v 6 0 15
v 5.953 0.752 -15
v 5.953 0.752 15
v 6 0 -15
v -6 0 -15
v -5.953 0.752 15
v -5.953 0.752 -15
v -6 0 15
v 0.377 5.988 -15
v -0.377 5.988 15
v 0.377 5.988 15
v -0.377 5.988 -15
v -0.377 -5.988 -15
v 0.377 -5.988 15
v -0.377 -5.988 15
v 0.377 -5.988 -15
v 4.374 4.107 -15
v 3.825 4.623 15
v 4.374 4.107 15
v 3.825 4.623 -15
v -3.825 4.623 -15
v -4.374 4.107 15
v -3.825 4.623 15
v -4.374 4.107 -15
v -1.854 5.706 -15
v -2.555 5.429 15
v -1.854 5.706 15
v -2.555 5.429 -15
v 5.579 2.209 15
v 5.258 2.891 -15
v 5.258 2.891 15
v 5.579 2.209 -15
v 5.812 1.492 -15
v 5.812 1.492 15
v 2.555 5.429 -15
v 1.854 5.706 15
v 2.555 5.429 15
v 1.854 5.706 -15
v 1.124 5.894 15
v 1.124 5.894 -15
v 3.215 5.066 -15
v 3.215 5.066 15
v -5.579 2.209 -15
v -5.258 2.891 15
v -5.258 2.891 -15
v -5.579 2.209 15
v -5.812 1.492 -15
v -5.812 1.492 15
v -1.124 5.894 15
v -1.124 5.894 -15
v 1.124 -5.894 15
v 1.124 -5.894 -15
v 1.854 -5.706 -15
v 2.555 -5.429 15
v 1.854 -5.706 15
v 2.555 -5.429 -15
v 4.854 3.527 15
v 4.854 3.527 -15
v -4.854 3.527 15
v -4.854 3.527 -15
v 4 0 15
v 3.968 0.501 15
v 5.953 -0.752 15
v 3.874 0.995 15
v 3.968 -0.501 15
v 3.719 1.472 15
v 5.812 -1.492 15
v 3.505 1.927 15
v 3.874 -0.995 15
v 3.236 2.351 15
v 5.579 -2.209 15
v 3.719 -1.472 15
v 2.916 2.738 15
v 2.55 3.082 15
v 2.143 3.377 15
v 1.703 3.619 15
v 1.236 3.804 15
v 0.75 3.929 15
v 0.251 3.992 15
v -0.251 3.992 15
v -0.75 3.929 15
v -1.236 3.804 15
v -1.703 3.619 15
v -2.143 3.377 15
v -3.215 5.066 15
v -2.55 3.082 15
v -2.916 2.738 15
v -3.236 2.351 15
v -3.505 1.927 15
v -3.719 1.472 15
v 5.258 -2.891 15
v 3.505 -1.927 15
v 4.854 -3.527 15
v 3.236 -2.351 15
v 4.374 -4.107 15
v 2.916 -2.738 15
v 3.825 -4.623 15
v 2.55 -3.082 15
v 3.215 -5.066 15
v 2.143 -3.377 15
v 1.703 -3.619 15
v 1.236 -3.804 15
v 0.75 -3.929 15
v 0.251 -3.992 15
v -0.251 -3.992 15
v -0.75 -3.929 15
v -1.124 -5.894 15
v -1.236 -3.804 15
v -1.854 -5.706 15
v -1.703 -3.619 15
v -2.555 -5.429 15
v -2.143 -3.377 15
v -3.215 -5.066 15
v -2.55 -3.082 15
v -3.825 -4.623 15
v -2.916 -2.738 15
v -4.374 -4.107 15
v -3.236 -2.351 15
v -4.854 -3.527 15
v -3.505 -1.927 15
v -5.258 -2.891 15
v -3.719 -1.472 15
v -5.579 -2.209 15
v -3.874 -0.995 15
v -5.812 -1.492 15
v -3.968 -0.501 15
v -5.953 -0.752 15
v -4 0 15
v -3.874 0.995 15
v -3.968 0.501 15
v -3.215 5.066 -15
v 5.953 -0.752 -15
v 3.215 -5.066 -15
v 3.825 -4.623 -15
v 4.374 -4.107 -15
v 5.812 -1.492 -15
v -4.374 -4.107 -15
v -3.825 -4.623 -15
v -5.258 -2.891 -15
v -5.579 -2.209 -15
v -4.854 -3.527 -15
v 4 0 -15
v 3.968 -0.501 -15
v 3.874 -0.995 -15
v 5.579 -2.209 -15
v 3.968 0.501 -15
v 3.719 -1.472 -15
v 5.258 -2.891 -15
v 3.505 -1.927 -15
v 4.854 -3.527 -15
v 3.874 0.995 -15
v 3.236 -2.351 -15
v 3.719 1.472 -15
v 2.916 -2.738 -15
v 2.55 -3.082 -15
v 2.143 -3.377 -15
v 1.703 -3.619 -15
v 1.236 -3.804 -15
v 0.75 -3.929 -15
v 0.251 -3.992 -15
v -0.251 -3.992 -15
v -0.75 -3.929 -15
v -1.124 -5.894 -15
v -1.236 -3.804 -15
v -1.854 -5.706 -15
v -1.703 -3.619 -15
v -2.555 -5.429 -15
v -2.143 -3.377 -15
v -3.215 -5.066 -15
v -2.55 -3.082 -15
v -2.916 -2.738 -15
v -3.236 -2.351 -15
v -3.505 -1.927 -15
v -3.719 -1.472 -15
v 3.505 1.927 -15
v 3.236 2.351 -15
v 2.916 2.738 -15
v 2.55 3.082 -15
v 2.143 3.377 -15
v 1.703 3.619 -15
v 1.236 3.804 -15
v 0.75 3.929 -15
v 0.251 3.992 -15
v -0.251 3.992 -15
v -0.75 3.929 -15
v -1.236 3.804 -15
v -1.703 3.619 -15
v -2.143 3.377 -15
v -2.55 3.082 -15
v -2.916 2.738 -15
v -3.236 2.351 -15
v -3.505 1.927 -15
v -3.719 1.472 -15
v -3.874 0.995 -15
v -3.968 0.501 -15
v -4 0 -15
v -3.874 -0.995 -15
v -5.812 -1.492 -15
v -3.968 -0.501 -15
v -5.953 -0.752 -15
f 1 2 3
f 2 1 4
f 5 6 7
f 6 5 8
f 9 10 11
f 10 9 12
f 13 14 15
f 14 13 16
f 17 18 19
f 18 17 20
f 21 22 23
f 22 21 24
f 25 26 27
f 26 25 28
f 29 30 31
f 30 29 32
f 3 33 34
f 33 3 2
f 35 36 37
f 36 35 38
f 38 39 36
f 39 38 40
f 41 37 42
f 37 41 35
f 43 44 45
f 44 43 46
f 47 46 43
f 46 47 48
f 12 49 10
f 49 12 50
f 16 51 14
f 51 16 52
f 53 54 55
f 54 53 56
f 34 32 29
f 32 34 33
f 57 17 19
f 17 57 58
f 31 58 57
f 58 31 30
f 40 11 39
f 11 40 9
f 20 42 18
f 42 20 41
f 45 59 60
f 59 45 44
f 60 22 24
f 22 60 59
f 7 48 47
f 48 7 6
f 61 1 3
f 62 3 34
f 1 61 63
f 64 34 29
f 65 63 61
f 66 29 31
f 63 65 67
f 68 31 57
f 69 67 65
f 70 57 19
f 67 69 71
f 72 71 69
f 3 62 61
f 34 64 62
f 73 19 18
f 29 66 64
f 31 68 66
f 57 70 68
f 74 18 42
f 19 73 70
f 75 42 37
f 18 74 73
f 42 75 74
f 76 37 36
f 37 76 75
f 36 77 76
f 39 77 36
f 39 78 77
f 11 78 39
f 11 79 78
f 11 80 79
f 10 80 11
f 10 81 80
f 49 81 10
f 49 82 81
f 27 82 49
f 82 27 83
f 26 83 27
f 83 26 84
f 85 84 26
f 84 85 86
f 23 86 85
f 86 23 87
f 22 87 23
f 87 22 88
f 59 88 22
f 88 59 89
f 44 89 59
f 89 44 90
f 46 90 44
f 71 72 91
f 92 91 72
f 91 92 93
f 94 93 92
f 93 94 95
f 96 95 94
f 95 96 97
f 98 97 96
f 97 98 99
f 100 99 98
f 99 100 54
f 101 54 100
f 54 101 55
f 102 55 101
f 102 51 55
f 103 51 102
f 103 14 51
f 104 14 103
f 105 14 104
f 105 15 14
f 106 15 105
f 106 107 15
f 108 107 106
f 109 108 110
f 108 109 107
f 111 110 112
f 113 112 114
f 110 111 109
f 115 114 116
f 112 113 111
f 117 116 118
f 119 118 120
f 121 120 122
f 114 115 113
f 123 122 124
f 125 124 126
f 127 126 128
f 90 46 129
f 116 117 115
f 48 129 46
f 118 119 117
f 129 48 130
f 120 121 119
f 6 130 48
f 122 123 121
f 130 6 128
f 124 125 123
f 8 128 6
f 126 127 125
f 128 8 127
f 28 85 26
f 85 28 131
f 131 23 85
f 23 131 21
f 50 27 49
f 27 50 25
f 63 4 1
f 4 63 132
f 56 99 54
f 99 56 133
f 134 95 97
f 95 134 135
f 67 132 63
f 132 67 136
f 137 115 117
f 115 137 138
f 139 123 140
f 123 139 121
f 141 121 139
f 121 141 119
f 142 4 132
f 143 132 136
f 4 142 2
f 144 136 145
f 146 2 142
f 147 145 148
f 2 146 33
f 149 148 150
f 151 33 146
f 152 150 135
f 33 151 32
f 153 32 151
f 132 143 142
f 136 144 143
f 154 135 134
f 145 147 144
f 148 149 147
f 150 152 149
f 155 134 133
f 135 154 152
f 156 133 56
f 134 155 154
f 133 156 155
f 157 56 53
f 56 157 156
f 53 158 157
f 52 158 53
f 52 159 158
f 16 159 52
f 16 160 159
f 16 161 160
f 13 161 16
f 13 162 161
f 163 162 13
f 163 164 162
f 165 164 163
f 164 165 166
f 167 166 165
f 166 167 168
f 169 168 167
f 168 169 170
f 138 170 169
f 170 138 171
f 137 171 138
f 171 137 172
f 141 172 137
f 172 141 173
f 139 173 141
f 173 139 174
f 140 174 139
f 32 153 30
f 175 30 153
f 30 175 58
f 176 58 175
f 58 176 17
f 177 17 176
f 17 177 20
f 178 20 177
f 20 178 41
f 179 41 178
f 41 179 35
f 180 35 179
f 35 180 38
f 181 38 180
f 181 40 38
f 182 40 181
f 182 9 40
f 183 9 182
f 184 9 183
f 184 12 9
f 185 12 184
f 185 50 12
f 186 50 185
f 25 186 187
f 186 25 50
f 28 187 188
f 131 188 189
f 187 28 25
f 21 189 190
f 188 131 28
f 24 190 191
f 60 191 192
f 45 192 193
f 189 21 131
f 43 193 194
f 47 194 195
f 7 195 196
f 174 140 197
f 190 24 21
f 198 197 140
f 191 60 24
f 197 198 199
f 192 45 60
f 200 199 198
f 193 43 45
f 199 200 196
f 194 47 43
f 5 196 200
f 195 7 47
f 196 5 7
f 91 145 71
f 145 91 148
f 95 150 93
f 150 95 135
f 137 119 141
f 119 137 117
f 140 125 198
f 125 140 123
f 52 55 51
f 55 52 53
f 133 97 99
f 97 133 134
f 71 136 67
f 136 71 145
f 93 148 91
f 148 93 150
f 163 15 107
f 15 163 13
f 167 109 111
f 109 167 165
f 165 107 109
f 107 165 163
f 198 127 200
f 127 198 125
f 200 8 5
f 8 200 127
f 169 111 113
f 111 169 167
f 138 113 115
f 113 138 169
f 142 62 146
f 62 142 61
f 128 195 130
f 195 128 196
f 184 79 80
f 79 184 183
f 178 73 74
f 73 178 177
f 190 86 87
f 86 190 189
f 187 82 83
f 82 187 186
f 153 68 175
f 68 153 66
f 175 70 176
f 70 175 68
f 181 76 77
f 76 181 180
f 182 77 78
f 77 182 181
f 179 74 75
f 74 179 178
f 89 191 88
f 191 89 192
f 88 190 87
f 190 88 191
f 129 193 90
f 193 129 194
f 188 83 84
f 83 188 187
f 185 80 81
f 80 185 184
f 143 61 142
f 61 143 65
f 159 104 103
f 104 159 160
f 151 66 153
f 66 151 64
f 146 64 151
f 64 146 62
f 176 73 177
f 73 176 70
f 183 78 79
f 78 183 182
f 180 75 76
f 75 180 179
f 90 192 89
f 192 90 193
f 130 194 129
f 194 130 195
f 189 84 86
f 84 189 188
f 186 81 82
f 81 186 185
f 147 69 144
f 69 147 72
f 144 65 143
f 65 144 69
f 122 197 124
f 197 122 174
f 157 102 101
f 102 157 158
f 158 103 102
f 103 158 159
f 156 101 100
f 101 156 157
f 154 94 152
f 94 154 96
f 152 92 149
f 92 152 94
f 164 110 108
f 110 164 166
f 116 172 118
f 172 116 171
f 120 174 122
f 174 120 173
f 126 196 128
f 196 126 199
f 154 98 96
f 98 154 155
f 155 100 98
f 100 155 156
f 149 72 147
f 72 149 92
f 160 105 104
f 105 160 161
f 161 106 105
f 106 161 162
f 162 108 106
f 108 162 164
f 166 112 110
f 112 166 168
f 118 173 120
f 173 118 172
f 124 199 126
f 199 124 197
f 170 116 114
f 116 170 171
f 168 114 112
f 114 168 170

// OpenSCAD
$fn = 50;


difference() {
	union() {
		translate(v = [0, 0, -15.0000000000]) {
			cylinder(h = 30, r = 6.0000000000);
		}
	}
	union() {
		translate(v = [0, 0, -100.0000000000]) {
			cylinder(h = 200, r = 4);
		}
	}
}
